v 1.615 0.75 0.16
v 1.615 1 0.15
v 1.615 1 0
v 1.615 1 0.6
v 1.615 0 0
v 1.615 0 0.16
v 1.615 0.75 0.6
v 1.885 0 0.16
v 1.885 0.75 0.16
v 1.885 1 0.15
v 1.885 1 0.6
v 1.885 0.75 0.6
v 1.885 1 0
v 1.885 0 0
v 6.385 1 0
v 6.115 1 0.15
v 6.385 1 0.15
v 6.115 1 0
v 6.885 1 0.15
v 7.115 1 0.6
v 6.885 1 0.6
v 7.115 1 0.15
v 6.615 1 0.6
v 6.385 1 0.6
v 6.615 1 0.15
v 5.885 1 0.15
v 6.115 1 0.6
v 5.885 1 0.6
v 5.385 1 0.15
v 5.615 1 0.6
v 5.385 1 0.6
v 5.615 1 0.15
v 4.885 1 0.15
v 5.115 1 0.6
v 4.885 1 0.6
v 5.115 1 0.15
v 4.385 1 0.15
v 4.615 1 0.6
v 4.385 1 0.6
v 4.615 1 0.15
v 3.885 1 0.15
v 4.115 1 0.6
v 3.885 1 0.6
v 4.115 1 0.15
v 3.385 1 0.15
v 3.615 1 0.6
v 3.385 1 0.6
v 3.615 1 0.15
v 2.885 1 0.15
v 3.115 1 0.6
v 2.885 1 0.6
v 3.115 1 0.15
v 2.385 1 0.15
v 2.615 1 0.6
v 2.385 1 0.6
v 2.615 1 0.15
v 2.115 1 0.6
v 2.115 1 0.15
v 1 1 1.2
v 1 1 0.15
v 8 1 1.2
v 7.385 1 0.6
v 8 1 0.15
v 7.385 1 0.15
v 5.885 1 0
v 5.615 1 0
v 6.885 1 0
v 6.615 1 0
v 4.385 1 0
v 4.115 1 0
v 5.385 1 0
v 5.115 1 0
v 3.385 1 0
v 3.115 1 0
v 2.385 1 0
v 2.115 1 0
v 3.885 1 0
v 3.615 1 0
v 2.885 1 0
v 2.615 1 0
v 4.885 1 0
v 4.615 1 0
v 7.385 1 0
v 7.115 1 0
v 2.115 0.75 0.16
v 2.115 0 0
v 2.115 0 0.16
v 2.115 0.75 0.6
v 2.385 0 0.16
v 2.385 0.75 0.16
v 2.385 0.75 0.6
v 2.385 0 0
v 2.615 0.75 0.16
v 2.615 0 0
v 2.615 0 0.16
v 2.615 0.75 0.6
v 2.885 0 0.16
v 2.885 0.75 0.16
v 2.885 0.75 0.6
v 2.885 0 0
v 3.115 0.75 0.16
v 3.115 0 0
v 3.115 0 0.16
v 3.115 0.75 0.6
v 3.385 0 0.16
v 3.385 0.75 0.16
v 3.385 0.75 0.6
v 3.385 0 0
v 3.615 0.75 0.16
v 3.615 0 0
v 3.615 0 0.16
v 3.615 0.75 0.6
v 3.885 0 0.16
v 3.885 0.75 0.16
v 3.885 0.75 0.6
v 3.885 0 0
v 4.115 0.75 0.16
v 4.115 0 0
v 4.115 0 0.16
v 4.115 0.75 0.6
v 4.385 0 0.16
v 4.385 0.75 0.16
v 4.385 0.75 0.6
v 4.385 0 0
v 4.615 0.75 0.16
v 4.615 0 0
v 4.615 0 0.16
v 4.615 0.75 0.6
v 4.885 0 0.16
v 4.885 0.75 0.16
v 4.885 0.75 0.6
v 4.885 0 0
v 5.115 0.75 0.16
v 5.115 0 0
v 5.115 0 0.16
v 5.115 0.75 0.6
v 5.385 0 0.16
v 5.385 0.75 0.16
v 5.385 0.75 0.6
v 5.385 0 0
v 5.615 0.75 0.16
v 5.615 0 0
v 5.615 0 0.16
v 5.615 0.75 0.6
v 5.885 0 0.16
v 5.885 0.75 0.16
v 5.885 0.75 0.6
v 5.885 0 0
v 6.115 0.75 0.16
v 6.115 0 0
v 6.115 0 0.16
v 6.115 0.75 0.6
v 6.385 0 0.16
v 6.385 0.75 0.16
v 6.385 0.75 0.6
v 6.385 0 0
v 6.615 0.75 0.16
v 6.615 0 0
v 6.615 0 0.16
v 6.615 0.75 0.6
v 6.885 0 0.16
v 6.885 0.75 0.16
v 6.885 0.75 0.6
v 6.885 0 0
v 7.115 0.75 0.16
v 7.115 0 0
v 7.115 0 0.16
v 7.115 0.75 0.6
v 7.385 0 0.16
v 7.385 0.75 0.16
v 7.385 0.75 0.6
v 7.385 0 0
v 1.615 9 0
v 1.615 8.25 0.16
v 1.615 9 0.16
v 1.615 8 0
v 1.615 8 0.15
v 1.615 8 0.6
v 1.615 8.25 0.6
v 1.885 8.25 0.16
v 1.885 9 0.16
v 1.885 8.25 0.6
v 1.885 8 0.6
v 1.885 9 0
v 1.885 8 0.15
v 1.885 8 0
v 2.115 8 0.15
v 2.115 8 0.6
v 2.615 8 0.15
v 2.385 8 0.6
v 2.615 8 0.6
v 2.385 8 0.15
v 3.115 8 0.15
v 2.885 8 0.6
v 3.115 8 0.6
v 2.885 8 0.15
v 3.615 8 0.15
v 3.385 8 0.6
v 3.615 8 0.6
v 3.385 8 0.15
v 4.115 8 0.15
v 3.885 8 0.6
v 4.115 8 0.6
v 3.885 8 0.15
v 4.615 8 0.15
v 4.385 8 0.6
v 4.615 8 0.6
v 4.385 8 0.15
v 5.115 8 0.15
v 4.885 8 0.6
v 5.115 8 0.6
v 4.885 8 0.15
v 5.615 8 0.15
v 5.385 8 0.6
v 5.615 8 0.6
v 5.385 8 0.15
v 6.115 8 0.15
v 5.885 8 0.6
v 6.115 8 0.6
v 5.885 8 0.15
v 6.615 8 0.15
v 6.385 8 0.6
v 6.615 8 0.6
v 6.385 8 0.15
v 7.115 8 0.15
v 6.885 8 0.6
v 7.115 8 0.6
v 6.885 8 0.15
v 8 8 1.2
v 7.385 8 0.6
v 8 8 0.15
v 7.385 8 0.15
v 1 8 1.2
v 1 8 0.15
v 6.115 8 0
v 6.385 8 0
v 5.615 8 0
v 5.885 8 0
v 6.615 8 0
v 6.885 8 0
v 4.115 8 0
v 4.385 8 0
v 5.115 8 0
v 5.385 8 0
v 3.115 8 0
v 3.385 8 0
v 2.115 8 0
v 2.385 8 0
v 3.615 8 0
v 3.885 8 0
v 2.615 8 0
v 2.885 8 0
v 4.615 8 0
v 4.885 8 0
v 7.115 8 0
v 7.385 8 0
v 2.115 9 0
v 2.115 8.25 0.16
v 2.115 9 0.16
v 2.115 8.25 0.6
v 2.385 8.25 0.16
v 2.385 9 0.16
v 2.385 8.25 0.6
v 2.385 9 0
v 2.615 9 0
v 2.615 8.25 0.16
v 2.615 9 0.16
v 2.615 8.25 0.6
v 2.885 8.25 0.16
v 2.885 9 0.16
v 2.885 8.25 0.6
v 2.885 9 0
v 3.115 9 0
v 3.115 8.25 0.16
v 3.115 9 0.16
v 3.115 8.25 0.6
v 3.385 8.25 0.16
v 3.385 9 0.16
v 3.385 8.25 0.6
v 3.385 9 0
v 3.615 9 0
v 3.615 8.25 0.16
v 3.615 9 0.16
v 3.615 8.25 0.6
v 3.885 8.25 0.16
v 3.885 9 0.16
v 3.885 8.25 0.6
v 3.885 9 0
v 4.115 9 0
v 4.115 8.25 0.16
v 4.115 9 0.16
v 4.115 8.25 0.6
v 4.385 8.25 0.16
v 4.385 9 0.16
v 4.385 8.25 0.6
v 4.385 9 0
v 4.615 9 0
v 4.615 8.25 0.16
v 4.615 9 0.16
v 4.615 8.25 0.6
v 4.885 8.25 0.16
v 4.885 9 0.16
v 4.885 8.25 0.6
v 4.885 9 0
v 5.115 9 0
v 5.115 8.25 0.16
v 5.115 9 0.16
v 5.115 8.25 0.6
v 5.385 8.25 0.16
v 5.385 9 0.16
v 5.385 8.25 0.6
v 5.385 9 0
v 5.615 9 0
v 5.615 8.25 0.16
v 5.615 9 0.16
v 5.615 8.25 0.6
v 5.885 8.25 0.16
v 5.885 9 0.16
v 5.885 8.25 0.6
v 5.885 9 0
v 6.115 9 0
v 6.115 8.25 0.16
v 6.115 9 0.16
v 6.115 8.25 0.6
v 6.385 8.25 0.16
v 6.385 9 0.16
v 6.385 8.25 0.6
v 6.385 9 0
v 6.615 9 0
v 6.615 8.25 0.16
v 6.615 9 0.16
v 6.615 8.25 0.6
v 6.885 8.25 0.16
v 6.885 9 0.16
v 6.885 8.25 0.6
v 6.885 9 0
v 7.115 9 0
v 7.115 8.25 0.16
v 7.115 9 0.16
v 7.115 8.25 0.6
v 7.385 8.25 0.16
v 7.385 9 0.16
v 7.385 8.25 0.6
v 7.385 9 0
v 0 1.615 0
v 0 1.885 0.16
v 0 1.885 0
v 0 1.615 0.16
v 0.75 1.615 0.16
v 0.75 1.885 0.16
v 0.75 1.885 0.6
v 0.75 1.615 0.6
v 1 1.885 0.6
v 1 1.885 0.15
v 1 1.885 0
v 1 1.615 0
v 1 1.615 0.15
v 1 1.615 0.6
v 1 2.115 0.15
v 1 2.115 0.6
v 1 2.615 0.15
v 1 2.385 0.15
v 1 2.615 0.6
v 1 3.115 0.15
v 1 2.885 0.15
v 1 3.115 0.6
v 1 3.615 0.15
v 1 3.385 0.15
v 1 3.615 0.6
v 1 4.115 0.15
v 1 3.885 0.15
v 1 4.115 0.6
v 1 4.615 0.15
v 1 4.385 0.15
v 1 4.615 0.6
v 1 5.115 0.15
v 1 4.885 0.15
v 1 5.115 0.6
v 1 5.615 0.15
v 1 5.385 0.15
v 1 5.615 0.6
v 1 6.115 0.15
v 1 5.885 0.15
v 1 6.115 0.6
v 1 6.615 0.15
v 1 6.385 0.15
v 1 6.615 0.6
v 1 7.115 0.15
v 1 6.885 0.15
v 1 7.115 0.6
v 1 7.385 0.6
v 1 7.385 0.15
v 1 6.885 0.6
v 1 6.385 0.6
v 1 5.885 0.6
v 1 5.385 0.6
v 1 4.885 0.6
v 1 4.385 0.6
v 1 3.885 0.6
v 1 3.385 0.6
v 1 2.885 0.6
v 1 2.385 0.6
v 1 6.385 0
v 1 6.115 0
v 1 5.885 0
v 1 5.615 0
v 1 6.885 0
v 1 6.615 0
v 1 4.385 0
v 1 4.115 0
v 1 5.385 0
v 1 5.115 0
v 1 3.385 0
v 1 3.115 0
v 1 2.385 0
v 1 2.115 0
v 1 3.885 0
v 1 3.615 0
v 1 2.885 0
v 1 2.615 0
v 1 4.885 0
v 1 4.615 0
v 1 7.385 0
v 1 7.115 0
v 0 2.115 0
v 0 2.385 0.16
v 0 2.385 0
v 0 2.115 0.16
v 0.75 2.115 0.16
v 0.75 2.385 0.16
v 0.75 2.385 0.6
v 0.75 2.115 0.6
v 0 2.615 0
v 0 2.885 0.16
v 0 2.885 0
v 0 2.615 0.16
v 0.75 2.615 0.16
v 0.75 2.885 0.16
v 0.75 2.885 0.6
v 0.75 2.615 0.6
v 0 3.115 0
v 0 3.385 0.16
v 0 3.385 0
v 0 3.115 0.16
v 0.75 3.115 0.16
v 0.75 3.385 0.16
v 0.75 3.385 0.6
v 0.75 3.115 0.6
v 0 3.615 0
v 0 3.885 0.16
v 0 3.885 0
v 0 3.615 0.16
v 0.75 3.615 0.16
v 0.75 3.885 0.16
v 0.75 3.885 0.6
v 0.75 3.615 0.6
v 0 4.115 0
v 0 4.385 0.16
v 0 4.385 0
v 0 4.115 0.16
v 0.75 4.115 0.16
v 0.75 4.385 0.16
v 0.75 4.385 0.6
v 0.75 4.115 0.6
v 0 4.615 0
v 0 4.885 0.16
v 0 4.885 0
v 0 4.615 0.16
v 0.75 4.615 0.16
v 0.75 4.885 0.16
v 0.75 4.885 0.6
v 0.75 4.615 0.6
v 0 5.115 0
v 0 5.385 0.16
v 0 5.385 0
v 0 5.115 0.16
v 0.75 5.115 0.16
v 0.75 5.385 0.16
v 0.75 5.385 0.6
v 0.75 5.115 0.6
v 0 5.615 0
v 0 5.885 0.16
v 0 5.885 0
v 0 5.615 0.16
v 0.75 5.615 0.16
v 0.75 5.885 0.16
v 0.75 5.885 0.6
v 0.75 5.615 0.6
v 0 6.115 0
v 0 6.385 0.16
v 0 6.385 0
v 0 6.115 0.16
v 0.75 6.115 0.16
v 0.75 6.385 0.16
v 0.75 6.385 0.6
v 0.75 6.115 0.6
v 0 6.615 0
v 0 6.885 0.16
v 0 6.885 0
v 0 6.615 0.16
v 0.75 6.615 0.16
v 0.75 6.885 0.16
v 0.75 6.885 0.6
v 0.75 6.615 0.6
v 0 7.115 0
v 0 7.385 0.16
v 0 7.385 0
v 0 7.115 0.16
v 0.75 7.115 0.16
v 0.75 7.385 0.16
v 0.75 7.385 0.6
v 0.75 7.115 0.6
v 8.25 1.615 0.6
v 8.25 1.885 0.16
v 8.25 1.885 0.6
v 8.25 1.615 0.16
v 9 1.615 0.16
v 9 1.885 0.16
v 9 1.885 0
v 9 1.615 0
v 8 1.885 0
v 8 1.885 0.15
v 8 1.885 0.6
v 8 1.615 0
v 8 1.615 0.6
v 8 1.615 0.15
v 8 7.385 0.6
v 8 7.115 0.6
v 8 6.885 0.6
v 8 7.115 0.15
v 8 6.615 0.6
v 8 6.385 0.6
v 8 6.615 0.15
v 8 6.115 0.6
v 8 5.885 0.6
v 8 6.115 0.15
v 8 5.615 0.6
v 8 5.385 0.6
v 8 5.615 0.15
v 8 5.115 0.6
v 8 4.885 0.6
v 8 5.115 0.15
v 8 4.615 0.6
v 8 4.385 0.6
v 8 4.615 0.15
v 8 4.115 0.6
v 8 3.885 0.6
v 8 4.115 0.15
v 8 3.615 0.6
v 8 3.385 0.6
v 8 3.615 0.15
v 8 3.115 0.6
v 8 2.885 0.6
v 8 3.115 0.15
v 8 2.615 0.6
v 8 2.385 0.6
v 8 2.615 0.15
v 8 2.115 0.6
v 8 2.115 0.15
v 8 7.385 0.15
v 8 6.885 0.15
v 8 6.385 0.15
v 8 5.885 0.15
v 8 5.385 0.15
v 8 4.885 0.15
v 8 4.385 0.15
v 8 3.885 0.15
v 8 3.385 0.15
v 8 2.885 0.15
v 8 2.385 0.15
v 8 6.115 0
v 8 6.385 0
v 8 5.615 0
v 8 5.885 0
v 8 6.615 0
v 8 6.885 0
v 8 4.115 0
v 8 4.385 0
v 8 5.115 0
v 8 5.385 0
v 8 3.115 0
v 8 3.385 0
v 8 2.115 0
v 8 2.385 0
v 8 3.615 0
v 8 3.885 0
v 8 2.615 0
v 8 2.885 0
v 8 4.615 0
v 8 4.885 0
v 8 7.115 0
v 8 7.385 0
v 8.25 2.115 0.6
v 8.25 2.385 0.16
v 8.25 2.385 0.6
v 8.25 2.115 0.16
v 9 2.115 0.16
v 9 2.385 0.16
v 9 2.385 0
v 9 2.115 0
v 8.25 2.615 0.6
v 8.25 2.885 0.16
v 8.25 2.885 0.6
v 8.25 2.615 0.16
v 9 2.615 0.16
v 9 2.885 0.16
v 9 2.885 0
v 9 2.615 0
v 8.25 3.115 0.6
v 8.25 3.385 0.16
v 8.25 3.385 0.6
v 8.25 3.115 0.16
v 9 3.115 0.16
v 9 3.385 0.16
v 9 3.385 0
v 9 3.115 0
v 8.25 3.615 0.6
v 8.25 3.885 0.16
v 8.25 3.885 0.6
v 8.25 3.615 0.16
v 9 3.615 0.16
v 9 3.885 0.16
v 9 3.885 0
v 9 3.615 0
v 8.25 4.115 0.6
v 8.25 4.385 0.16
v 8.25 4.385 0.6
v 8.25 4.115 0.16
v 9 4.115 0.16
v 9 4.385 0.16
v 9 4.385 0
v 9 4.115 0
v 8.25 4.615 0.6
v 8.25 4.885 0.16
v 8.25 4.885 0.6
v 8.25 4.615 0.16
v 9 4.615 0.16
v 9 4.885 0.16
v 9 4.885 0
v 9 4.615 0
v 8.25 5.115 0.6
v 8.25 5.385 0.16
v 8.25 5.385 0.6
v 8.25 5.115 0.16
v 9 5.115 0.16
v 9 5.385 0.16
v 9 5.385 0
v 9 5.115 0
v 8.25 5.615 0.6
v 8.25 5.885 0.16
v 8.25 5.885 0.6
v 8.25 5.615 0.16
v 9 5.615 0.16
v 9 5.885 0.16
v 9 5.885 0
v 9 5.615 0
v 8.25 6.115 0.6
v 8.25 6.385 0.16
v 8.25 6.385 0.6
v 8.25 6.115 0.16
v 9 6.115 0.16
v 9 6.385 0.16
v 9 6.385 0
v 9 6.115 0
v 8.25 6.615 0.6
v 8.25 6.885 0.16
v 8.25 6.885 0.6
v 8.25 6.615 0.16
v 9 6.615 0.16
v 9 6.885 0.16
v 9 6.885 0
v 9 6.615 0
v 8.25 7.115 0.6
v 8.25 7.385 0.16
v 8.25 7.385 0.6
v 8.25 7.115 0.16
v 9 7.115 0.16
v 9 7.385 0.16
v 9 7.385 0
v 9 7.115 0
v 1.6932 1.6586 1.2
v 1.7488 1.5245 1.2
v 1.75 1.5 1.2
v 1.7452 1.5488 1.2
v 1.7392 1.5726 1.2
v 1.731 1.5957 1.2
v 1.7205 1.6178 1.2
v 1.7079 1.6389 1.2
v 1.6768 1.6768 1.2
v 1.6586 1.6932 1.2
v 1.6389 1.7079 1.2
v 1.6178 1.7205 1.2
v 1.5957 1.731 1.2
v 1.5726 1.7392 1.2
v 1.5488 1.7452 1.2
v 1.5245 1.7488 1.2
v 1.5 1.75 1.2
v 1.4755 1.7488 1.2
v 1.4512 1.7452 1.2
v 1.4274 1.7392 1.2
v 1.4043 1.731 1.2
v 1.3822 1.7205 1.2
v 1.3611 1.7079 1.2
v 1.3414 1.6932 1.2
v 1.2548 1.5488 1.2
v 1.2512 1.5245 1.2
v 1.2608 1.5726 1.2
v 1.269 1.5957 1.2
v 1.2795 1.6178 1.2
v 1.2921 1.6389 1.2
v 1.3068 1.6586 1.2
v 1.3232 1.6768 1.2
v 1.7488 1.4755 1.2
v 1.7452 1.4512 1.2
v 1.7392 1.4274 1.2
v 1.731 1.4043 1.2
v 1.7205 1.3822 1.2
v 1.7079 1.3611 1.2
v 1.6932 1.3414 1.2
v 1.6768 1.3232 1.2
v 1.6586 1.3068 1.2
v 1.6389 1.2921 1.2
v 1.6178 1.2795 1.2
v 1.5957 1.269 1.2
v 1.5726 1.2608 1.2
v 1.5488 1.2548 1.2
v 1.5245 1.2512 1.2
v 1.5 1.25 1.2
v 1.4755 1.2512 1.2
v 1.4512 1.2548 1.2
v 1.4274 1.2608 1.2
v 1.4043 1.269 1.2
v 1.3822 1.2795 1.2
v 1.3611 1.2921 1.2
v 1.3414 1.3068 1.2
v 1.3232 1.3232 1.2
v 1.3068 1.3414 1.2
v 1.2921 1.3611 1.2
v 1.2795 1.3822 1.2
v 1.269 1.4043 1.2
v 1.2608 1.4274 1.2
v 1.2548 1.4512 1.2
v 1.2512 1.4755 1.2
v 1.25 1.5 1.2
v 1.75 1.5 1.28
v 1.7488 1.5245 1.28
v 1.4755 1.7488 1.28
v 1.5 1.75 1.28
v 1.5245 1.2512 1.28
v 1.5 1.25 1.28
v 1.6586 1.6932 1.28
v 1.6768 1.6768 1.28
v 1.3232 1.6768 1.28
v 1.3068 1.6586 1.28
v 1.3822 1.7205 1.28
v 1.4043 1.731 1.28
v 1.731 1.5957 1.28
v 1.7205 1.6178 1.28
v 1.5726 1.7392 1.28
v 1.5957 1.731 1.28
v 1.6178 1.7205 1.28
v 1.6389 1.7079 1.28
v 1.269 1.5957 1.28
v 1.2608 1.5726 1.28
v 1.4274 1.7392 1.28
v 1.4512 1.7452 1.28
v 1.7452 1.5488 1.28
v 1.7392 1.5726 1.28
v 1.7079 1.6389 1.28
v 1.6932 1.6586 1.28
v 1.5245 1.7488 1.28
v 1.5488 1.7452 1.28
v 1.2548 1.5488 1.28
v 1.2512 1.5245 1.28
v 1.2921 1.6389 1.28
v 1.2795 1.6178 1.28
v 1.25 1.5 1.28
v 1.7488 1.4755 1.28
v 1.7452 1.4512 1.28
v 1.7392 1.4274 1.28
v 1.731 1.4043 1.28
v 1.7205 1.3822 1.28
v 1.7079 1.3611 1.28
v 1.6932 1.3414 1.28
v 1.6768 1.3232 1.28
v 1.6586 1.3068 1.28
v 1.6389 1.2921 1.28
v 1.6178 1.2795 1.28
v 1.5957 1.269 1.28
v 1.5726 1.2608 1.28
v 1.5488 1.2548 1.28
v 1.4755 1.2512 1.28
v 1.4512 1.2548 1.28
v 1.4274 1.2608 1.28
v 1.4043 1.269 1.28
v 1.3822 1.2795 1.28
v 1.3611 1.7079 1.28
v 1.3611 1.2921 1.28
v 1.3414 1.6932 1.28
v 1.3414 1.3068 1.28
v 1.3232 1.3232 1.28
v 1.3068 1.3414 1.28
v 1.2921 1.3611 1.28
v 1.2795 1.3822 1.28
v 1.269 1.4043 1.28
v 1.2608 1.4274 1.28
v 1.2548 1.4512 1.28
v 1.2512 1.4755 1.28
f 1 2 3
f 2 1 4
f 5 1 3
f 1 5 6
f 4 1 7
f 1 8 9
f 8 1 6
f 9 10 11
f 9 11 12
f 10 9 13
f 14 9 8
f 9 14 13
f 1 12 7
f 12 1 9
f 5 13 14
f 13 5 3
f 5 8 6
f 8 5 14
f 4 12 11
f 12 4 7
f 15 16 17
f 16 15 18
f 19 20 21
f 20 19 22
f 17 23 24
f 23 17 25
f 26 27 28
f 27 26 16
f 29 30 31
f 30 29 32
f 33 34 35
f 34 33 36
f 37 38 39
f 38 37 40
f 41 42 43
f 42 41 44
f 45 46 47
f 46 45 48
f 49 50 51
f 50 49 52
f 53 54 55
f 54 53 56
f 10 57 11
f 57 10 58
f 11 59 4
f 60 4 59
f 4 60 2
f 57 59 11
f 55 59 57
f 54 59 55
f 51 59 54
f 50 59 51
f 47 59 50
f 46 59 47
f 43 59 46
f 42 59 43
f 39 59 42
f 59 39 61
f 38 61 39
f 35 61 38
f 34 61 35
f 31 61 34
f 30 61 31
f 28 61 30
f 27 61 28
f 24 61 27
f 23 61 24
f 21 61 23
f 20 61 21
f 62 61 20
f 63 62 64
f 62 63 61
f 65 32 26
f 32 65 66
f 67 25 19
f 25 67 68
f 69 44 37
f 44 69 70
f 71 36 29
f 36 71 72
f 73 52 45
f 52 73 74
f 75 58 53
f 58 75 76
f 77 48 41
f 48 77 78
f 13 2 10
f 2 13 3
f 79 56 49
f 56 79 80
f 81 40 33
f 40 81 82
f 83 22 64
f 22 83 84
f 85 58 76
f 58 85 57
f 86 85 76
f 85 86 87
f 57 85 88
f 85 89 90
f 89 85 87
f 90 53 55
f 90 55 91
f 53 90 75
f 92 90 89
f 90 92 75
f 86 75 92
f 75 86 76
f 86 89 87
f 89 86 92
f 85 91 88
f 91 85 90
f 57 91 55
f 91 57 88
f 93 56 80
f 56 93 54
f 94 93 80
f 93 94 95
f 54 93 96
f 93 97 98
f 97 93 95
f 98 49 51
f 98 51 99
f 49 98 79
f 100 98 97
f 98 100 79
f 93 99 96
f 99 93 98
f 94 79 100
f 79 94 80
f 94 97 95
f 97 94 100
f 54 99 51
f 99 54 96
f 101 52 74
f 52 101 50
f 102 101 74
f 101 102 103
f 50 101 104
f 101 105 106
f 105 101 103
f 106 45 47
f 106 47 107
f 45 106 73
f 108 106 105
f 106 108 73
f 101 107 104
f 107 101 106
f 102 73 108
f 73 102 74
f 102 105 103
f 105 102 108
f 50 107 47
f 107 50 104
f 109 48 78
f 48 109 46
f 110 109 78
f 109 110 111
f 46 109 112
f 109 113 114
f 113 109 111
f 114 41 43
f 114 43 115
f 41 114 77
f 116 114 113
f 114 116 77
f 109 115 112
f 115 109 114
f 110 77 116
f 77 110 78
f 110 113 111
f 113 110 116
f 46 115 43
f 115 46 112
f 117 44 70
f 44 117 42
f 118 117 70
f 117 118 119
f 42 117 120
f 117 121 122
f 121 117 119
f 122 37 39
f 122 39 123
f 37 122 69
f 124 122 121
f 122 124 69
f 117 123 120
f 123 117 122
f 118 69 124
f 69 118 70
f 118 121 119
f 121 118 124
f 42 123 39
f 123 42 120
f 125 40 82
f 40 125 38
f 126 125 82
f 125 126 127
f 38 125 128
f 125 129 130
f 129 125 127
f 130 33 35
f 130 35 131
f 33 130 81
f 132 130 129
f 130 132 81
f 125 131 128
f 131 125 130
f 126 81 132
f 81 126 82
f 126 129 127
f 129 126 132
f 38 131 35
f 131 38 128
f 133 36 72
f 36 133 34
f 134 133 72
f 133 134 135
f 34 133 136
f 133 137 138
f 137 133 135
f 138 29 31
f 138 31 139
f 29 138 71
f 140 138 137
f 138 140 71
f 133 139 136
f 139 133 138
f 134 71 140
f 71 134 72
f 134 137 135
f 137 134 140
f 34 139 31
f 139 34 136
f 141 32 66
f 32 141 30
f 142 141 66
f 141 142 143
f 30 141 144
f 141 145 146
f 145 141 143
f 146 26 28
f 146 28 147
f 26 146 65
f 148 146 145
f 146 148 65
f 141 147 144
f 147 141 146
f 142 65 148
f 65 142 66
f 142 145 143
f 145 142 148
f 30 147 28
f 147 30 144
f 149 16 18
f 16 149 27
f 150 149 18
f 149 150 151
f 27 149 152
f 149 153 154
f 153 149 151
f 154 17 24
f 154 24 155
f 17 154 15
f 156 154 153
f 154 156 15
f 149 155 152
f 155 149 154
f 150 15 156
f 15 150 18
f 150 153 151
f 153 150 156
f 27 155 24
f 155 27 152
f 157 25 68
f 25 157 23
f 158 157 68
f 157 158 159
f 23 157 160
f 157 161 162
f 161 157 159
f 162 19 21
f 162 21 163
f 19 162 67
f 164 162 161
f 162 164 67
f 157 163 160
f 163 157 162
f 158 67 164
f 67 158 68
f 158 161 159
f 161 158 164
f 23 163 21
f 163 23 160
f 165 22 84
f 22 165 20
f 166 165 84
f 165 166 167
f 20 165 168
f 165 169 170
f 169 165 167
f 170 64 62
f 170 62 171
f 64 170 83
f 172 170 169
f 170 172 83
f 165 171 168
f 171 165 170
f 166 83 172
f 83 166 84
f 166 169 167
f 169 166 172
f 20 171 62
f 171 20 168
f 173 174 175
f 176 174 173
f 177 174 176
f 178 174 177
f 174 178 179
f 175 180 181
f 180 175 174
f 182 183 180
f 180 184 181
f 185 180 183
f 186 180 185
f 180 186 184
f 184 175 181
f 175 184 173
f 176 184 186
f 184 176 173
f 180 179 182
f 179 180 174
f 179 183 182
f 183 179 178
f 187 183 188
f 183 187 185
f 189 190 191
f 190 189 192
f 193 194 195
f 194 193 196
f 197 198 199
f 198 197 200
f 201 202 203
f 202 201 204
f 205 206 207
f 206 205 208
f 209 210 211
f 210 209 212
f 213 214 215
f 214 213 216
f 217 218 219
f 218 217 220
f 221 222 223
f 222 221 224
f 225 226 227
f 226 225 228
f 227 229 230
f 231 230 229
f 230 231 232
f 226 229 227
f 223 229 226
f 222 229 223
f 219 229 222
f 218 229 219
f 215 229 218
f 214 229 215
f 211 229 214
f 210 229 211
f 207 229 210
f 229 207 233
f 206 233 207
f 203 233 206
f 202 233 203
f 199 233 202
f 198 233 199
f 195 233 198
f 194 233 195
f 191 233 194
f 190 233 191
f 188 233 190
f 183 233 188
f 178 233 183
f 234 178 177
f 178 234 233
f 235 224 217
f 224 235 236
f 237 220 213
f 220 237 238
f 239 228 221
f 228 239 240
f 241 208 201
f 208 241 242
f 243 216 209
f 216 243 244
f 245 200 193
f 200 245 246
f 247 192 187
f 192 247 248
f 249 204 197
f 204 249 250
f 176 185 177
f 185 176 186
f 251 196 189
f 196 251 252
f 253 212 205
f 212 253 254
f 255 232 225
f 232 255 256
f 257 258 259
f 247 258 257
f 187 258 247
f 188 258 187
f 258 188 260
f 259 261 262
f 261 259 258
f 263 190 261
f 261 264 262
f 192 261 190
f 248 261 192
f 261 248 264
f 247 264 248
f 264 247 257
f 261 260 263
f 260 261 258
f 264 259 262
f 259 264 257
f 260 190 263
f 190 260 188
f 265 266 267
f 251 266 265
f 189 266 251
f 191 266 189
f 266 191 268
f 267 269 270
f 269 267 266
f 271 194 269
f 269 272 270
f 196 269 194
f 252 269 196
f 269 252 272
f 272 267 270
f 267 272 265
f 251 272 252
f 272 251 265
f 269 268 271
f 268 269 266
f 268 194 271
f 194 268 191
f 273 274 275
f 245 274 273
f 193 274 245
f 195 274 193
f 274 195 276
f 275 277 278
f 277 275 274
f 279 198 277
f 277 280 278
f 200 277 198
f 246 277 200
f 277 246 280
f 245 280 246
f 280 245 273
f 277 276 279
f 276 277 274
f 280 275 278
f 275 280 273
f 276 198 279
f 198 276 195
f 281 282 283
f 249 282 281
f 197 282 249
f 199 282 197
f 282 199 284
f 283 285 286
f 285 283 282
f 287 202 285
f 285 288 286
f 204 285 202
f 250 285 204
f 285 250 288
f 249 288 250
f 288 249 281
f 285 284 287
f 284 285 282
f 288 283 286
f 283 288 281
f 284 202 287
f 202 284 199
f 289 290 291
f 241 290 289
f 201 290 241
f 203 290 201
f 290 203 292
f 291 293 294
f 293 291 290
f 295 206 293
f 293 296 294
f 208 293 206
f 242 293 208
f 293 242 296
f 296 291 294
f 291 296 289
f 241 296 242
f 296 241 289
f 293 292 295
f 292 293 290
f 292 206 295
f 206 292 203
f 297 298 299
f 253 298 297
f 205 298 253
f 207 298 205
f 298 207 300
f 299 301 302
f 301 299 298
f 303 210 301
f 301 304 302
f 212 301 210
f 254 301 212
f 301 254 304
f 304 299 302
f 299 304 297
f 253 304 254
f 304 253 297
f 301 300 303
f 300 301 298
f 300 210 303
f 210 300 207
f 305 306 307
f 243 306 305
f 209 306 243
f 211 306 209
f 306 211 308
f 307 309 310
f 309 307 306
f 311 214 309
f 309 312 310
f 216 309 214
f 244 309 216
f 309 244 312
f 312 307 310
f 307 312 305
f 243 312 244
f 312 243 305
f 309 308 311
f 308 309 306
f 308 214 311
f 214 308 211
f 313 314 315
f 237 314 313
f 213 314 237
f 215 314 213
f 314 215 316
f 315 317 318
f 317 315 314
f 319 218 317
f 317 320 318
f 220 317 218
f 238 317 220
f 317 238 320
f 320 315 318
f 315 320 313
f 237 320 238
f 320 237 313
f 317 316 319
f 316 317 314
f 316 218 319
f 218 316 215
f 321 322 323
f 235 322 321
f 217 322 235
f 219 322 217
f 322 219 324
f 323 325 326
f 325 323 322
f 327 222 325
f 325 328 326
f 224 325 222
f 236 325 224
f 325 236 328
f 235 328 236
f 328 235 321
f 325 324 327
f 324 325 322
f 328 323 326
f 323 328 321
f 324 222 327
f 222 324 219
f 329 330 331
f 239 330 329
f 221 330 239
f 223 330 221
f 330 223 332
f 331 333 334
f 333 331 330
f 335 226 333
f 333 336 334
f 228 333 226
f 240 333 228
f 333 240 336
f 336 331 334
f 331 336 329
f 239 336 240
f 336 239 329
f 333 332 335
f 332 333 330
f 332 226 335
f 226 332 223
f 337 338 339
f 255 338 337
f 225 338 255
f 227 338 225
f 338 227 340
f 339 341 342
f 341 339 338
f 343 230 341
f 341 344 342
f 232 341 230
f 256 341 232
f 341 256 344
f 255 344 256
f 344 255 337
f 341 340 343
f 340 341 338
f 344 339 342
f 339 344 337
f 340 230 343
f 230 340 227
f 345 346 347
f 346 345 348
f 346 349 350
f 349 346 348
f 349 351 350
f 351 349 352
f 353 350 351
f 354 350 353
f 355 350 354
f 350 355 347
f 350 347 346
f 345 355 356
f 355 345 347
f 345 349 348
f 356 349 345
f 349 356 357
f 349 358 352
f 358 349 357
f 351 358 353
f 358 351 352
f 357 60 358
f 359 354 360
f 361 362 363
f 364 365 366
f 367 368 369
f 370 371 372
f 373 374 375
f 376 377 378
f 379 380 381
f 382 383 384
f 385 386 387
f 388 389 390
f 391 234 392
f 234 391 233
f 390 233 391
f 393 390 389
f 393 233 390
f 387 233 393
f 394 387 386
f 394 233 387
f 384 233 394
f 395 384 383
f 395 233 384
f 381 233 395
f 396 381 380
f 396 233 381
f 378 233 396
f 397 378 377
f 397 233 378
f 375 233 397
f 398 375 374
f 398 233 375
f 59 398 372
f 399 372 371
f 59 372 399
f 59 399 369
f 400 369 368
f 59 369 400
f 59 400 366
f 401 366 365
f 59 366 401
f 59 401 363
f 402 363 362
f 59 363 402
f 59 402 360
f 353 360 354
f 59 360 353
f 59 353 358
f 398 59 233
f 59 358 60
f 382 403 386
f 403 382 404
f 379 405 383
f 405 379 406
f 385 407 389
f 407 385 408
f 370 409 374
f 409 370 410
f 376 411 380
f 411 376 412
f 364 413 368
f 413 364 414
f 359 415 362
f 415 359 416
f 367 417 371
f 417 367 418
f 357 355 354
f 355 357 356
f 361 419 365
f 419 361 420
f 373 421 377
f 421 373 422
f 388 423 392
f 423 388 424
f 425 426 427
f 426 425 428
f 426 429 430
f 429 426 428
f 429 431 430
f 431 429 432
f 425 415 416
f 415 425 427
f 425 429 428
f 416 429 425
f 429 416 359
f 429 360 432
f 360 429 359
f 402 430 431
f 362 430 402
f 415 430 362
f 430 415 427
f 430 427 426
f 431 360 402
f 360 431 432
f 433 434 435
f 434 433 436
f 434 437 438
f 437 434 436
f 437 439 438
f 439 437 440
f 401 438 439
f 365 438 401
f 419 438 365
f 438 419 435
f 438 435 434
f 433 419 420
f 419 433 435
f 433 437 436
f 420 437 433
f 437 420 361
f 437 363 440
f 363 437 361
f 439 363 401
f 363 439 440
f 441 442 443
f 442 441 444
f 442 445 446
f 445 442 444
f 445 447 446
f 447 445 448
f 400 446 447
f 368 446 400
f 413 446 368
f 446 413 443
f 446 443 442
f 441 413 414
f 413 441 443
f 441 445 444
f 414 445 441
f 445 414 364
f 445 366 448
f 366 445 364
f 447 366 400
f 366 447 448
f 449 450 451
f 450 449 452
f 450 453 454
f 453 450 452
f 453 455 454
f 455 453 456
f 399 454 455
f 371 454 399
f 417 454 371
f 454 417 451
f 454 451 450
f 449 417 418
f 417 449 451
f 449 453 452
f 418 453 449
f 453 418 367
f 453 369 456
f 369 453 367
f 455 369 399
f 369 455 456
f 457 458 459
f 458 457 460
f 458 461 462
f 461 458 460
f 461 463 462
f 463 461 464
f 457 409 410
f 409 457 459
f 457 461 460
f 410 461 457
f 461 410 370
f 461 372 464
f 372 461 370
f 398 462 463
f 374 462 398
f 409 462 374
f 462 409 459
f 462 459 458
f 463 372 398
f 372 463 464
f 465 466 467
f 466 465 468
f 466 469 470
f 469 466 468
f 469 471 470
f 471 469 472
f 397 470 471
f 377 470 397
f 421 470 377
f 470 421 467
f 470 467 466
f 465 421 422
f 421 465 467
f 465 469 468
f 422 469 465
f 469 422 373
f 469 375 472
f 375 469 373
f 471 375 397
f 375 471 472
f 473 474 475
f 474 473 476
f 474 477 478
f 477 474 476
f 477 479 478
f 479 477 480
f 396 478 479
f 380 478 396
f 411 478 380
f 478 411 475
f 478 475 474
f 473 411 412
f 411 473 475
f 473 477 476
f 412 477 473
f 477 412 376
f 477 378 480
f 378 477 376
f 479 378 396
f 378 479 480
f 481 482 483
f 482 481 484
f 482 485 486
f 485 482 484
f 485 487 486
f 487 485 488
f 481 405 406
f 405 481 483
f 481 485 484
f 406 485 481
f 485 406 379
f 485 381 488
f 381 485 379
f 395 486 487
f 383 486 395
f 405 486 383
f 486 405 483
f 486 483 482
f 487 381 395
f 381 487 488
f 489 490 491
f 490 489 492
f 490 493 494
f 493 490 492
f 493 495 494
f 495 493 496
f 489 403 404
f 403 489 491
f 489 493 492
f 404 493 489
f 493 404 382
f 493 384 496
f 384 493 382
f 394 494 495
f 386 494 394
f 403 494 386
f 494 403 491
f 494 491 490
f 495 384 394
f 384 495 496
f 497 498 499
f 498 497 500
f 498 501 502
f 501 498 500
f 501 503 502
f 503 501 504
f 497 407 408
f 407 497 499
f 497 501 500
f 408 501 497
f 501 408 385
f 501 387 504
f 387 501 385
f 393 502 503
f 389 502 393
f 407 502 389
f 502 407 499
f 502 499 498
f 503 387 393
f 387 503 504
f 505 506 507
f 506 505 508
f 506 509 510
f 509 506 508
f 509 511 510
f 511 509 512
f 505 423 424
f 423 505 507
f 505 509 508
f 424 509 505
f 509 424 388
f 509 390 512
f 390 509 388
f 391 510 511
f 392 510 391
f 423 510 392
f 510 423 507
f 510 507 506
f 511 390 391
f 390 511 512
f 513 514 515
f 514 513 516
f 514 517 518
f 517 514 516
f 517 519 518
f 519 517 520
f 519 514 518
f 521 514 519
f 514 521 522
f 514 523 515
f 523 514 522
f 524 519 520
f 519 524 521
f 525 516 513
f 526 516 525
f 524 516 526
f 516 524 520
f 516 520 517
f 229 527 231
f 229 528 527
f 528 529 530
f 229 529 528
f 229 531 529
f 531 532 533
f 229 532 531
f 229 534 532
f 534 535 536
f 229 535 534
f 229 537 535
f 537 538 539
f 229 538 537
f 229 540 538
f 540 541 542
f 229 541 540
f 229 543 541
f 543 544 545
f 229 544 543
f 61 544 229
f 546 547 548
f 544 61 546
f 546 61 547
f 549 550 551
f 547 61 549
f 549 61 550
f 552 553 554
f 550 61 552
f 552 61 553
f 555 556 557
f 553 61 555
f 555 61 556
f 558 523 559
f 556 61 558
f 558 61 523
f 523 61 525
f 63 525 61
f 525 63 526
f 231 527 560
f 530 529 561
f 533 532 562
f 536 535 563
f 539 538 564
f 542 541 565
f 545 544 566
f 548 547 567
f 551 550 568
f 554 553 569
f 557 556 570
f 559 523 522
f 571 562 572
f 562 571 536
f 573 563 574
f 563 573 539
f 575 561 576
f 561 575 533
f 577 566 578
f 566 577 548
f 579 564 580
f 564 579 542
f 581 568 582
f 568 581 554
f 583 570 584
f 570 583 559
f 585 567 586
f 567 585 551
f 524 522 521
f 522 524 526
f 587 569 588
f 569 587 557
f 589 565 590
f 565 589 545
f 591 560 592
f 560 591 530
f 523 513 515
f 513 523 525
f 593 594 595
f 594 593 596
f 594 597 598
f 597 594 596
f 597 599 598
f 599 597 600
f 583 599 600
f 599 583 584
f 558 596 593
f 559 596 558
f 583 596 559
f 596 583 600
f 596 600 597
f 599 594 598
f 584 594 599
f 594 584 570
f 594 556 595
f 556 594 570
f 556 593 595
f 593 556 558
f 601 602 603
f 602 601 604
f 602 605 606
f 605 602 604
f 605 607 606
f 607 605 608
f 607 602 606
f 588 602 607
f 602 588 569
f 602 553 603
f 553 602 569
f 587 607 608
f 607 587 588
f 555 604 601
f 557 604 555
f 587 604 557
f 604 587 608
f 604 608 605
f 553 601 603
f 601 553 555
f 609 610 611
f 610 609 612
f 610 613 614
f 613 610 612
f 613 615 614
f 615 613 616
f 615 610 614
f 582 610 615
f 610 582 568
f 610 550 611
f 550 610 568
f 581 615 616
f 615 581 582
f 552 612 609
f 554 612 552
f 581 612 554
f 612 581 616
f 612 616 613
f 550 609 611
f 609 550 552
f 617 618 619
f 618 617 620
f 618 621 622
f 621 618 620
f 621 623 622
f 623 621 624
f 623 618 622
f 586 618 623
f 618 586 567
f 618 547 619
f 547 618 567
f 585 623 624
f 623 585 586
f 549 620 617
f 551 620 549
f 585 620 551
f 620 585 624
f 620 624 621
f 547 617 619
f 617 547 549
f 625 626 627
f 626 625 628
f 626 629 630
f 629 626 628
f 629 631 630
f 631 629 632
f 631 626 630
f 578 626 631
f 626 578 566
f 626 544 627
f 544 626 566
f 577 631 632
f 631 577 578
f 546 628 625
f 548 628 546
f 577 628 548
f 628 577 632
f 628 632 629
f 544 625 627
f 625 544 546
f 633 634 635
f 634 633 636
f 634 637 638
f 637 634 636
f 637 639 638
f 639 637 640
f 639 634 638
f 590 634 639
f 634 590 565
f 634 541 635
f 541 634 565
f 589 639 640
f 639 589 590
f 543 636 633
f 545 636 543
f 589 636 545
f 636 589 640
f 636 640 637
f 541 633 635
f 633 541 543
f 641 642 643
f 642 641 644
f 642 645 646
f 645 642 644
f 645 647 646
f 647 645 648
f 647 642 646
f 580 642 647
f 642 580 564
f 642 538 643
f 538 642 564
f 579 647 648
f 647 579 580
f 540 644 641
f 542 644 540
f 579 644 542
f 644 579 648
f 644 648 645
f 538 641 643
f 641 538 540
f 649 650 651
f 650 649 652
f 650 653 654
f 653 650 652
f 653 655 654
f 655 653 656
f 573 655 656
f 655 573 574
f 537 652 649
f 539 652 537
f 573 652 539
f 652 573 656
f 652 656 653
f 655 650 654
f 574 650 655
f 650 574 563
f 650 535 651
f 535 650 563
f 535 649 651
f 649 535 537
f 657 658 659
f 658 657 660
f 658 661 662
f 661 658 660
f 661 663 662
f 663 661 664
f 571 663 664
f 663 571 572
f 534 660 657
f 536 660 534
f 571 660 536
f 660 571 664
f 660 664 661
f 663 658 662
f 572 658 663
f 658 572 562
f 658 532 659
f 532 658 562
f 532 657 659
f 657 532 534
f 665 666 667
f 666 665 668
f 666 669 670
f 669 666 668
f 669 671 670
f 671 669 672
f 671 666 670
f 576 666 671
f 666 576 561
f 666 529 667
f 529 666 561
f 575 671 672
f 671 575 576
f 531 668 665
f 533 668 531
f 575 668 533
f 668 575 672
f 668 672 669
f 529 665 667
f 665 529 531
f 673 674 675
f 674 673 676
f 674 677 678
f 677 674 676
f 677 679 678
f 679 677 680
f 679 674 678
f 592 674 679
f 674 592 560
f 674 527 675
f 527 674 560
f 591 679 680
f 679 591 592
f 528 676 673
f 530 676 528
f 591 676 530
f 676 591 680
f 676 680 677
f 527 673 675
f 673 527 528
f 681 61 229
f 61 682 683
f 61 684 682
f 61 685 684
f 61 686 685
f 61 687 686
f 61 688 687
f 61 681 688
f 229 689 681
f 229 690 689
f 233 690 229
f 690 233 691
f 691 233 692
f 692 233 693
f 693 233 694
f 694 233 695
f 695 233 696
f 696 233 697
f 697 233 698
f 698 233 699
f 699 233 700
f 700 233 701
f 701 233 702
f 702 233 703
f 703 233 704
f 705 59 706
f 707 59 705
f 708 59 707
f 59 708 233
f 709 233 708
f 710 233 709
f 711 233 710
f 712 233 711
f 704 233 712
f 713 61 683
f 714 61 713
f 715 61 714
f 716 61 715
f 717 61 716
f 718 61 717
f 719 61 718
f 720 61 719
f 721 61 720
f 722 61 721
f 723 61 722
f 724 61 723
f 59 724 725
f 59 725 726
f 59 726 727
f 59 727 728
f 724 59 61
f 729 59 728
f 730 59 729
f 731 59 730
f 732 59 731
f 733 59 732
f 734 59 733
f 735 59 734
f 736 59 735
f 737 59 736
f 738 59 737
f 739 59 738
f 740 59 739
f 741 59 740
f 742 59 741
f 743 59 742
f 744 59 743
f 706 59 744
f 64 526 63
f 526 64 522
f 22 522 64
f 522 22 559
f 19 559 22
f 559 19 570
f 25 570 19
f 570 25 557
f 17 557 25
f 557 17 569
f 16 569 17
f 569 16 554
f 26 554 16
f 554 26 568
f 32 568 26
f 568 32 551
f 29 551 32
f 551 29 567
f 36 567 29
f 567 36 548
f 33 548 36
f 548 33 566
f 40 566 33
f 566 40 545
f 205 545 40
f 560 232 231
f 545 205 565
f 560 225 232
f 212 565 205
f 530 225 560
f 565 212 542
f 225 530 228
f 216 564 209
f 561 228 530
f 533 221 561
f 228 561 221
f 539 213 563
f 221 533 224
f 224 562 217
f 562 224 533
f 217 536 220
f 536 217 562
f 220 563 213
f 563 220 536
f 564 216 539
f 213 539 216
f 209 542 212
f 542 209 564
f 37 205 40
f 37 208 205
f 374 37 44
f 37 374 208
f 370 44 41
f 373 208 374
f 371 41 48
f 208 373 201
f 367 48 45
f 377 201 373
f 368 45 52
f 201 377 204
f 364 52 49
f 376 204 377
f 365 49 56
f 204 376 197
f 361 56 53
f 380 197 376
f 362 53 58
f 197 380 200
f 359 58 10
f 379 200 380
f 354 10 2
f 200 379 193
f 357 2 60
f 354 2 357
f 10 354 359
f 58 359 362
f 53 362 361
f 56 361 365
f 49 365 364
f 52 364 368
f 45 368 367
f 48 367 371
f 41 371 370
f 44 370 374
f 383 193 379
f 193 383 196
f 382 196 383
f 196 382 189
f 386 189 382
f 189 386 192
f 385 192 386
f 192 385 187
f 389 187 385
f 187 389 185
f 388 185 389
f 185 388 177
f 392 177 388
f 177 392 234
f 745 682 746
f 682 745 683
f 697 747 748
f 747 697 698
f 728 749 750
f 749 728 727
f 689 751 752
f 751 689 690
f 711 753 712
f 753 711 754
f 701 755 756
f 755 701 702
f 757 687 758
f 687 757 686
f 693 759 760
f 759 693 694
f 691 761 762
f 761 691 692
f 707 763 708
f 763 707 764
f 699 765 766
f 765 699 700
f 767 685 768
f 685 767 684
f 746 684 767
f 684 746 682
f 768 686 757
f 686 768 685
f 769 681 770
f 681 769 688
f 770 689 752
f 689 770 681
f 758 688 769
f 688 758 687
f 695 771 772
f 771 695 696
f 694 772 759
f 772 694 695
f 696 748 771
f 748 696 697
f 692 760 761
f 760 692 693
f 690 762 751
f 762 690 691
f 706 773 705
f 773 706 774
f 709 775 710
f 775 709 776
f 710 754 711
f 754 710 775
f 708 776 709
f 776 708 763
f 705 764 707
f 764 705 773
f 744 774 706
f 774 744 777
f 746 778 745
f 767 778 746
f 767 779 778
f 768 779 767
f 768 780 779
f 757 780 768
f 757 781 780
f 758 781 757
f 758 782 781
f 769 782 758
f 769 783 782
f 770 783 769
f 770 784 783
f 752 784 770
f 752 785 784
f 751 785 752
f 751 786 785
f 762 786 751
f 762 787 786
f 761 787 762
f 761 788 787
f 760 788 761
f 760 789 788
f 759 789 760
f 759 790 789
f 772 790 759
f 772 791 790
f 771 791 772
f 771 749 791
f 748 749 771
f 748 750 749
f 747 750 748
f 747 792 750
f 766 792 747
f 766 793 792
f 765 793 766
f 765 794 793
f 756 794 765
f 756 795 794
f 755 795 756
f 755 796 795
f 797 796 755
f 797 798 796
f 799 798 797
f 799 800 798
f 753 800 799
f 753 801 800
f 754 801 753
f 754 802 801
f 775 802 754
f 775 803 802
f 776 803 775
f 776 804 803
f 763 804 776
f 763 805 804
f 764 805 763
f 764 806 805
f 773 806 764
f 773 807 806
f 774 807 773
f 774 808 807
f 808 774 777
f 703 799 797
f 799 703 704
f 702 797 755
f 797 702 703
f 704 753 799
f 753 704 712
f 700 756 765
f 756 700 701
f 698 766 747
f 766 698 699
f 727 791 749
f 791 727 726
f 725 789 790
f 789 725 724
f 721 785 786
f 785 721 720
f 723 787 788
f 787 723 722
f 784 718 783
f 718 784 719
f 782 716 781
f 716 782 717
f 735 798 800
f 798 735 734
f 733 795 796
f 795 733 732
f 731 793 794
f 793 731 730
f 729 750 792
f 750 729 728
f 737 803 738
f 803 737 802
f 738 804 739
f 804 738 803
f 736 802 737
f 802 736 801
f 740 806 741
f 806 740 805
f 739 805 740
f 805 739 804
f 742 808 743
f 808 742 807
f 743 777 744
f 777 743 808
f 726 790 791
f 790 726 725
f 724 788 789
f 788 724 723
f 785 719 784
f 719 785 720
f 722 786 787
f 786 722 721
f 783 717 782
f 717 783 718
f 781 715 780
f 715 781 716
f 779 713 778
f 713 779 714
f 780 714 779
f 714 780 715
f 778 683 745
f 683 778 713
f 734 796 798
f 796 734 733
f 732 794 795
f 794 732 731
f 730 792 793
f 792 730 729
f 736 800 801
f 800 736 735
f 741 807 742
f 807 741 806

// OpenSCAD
/*48-Lead Plastic Thin Quad Flatpack - 9.0x9.0 mm Body [TQFP]

generated by com.zoubworld.electronics.cad.model3d.TQFP48
Date : Sun Jan 25 03:12:27 CET 2026
*/
A = 1.2 ;
E1 = 7.0 ;
D = 9.0 ;
A1 = 0.15 ;
A3 = 1.05 ;
D1 = 7.0 ;
N = 48.0 ;
e = 0.5 ;
L = 0.75 ;
b = 0.27 ;
c = 0.16 ;
L1 = 1.0 ;
E = 9.0 ;
$fn =64;

//body
color("black")
translate([D/2-D1/2,E/2-E1/2,A1])
cube([D1,E1,A-A1], center=false);

// pad
for (i = [-N/4/2 : 1 : N/4/2-1])
color("grey")
translate([D/2-b/2+e/2+e*i,0,0])
{
cube([b,L,c], center=false);
    translate([0,L,0])
cube([b,L1-L,A/2], center=false);
}
for (i = [-N/4/2 : 1 : N/4/2-1])
color("grey")
translate([D/2-b/2+e/2+e*i,E-L,0])
{cube([b,L,c], center=false);
    translate([0,-(L1-L),0])
cube([b,L1-L,A/2], center=false);
}

for (i = [-N/4/2 : 1 : N/4/2-1])
color("grey")
translate([0,E/2-b/2+e/2+e*i,0])
{cube([L,b,c], center=false);
    translate([L,0,0])
cube([L1-L,b,A/2], center=false);
}

for (i = [-N/4/2 : 1 : N/4/2-1])
color("grey")
translate([D-L,E/2-b/2+e/2+e*i,0])
{cube([L,b,c], center=false);
    translate([-(L1-L),0,0])
cube([L1-L,b,A/2], center=false);
}
/*
//expose pad
color("grey")
translate([D/2-D2/2,E/2-E2/2,0])
cube([D2,E2,A3], center=false);
*/
color("white")
translate([D/2-D1/2+0.5,E/2-E1/2+0.5,c])
cylinder(A-c/2,r=0.25,center=false);
